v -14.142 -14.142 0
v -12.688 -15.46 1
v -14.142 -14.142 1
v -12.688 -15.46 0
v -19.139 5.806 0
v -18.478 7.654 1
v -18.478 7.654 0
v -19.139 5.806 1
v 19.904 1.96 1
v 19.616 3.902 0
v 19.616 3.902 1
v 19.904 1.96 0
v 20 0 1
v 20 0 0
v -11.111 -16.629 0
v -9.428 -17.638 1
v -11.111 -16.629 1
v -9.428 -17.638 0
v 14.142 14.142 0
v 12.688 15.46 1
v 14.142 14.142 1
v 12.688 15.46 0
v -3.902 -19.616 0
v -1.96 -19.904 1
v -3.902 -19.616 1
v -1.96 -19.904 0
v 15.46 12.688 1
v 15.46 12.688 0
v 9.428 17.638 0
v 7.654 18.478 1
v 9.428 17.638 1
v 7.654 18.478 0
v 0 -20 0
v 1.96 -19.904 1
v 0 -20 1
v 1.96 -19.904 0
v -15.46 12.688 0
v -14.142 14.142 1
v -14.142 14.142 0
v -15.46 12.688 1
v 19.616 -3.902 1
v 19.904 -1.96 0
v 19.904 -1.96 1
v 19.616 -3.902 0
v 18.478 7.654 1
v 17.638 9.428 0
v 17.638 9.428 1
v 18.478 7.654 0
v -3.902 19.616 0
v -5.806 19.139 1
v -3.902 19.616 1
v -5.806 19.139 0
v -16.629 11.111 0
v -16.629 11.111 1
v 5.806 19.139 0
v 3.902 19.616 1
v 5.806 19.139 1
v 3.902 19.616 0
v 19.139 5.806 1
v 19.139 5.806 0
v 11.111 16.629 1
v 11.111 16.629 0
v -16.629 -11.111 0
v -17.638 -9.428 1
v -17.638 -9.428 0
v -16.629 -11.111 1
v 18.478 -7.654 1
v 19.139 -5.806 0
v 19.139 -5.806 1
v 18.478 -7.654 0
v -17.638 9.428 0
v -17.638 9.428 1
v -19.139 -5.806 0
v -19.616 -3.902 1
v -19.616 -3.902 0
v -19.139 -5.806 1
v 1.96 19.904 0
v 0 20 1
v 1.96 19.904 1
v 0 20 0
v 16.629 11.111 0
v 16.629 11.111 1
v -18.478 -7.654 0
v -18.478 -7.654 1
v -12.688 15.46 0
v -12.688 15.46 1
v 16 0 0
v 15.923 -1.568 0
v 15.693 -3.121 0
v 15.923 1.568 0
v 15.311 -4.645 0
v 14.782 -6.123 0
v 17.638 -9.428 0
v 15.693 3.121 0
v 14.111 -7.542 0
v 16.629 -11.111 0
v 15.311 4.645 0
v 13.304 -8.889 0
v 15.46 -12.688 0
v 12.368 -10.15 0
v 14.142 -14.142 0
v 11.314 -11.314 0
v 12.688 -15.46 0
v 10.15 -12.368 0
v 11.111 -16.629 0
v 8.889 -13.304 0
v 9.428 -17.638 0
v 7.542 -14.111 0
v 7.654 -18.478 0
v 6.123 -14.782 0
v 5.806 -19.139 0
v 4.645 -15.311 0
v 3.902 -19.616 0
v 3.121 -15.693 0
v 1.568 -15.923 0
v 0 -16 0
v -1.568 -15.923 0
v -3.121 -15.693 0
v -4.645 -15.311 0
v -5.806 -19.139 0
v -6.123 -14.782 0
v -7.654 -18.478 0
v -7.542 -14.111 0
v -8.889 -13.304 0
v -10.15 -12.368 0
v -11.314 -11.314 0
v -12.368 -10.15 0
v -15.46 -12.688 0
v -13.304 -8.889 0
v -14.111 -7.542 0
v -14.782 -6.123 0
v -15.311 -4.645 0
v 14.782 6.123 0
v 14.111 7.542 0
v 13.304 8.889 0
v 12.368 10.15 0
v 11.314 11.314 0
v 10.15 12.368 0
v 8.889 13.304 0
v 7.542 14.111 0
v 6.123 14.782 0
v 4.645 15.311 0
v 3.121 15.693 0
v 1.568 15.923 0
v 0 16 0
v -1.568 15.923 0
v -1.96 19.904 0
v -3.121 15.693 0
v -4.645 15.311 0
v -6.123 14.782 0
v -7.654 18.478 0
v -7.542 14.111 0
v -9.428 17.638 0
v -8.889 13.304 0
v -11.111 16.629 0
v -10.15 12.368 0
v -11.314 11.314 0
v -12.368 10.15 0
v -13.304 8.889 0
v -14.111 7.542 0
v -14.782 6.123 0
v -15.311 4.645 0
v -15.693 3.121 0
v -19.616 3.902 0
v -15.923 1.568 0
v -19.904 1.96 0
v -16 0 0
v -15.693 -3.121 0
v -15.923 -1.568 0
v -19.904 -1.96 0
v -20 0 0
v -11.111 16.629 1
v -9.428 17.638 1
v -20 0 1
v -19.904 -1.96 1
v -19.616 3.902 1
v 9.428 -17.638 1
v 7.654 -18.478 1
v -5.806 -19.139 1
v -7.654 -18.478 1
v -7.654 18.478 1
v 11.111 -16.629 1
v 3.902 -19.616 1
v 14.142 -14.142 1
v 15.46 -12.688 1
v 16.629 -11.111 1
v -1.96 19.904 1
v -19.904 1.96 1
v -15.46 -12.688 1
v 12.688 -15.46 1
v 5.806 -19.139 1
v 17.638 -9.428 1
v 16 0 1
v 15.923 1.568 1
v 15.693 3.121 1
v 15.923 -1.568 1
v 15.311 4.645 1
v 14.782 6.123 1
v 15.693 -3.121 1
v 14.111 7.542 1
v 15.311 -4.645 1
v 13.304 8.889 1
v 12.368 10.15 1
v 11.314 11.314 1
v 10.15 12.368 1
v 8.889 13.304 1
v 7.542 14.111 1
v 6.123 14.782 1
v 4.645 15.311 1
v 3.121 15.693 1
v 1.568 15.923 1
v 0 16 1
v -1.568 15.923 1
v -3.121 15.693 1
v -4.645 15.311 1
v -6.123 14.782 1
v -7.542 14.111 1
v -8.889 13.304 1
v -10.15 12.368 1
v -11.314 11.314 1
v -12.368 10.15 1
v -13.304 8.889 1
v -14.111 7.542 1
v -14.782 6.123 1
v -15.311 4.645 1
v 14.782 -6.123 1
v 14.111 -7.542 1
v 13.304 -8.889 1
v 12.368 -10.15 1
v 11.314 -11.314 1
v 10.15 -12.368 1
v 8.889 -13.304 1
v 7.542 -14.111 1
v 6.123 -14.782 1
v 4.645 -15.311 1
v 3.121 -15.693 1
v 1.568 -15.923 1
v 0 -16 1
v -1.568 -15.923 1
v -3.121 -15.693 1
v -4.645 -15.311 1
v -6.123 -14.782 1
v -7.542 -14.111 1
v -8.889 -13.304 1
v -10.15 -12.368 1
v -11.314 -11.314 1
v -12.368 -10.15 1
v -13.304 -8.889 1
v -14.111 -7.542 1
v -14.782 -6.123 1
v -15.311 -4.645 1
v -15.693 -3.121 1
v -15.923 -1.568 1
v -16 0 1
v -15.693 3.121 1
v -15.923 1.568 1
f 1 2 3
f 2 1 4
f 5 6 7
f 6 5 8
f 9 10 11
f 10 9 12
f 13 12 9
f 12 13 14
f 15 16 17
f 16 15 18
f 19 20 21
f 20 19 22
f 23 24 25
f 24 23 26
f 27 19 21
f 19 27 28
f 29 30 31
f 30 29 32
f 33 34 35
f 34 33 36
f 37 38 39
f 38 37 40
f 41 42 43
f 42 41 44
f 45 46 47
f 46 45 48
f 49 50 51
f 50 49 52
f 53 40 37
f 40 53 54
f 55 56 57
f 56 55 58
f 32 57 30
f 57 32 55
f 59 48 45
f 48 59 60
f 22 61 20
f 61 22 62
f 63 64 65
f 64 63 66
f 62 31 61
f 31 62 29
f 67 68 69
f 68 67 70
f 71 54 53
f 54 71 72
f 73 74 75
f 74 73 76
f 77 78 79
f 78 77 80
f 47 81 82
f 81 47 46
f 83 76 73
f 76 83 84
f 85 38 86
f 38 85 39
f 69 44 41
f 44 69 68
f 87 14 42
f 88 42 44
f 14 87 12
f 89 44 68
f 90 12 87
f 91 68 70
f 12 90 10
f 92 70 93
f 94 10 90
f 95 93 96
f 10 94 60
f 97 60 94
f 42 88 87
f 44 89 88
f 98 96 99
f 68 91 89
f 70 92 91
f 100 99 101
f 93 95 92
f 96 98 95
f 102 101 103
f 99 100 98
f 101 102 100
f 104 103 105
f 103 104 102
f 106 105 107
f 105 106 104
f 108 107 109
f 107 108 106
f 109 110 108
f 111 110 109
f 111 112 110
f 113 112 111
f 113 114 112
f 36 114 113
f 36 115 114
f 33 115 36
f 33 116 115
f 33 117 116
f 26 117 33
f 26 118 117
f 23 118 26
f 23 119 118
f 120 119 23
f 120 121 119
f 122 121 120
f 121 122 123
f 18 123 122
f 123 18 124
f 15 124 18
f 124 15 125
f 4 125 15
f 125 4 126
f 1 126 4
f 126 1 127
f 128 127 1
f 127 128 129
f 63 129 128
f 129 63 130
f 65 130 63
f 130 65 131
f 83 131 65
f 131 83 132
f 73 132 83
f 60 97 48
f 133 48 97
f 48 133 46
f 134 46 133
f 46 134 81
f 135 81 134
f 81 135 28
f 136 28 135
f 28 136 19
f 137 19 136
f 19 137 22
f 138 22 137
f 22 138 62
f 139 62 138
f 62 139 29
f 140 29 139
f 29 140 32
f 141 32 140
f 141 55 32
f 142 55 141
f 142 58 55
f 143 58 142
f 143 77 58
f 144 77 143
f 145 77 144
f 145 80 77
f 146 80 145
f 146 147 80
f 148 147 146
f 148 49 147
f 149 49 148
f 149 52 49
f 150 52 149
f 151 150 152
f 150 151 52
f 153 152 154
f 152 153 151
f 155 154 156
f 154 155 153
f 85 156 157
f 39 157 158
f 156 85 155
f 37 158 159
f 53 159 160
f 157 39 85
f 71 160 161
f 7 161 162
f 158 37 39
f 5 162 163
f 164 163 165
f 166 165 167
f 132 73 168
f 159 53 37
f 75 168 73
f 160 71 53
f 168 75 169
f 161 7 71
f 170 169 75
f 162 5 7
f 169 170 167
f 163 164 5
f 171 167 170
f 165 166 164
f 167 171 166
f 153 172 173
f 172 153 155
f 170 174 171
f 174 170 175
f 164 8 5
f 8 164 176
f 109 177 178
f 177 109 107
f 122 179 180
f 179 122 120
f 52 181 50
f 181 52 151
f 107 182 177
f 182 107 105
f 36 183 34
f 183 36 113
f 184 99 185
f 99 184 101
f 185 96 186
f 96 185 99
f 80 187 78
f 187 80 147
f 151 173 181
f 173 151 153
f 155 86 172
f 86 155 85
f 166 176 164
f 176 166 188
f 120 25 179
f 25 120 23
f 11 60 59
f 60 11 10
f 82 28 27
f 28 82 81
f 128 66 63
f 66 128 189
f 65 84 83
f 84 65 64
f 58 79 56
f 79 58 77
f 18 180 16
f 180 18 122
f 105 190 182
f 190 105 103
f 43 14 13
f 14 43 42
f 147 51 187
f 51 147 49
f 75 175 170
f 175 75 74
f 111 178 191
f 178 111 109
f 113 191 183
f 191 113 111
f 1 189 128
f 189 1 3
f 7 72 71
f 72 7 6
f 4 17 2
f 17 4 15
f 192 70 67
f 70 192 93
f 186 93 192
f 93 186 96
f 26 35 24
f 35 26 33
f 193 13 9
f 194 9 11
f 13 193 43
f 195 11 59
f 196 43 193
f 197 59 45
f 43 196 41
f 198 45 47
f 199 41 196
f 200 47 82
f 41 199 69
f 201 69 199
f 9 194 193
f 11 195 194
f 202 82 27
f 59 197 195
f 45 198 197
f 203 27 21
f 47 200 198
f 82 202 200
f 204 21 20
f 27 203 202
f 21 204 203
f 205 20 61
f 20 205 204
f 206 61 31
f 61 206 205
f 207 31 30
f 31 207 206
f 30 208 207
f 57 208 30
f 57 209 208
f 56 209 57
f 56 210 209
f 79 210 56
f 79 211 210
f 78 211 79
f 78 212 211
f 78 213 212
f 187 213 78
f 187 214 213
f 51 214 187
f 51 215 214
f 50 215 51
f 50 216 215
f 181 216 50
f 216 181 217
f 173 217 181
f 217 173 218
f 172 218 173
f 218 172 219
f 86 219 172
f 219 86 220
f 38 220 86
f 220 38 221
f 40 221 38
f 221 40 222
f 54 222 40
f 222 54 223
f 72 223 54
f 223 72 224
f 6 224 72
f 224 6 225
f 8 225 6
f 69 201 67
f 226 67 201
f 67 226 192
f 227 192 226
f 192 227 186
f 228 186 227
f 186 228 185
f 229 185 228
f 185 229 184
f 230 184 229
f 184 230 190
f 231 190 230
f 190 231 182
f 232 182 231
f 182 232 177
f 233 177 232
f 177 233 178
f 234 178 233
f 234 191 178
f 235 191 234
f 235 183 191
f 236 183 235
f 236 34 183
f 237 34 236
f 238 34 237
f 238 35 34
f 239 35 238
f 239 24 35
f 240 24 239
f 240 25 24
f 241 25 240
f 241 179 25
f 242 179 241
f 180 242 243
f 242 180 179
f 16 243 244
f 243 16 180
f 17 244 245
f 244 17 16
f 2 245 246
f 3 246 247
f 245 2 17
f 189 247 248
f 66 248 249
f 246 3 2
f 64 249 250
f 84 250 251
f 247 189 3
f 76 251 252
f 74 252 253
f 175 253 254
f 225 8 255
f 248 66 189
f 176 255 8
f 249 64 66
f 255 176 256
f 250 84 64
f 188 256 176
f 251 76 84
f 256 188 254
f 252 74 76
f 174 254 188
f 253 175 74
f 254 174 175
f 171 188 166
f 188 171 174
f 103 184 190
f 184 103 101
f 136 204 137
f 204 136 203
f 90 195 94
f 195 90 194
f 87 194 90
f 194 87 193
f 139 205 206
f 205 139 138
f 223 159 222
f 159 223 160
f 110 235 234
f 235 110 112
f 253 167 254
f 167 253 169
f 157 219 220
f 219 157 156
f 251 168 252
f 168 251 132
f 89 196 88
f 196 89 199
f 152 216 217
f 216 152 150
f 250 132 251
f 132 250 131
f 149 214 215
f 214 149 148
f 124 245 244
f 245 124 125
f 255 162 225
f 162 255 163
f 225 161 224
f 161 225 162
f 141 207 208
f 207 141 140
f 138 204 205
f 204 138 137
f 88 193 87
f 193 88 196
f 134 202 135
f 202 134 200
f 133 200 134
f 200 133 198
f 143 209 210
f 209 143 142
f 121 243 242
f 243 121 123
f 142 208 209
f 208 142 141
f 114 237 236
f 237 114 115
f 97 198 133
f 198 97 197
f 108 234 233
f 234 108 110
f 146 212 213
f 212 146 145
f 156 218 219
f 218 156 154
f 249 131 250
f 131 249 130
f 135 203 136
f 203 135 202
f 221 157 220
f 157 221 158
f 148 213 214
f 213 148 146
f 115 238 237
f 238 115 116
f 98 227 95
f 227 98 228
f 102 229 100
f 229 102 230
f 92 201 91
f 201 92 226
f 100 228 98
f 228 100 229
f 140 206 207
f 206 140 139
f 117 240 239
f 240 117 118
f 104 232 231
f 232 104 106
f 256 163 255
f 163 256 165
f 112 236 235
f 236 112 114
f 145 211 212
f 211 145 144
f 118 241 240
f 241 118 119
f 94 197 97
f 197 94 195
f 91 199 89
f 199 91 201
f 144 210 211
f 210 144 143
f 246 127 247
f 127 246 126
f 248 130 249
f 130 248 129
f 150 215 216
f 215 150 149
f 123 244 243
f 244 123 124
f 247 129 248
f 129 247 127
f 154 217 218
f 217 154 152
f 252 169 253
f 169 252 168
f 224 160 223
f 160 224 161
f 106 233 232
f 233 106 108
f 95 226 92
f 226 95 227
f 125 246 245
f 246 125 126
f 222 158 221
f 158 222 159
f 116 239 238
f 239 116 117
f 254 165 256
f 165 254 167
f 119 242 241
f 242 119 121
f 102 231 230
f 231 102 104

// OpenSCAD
// file: parameters.scad
// AFPM-Desk-v1 shared parameters (mm)
// Desktop axial-flux PM learning generator — Faraday induction education only.

$fn = 64;

// --- Magnets (N42 Neo discs) ---
magnet_d = 20;
magnet_h = 3;
magnet_count = 8;
magnet_pcd = 70; // pitch circle diameter

// --- Rotor ---
rotor_od = 100;
rotor_id = 12; // shaft clearance / hub seat
rotor_thickness = 6;
magnet_pocket_clearance = 0.3;
magnet_pocket_depth = magnet_h + 0.2;

// --- Stator ---
stator_od = 110;
stator_id = 30;
stator_thickness = 8;
coil_count = 6;
coil_slot_w = 22;
coil_slot_h = 18;
coil_slot_depth = 6;
coil_pcd = 70;

// --- Shaft / bearings ---
shaft_d = 8;
bearing_od = 22; // 608 skate bearing
bearing_id = 8;
bearing_h = 7;
bearing_seat_od = bearing_od + 0.2;

// --- Base ---
base_w = 160;
base_d = 140;
base_h = 8;
post_h = 55;

// --- Crank ---
crank_arm_len = 80;
crank_arm_w = 16;
crank_arm_t = 8;
handle_d = 12;
handle_len = 40;

// --- Electronics tray ---
tray_w = 70;
tray_d = 50;
tray_h = 12;
// main file
include <parameters.scad>

// Print 2–3 of these; stack to set ~2–3 mm mechanical air gap during setup
module spacer_ring() {
  difference() {
    cylinder(h=1.0, d=40);
    translate([0,0,-0.1])
      cylinder(h=1.2, d=stator_id + 2);
  }
}

spacer_ring();
